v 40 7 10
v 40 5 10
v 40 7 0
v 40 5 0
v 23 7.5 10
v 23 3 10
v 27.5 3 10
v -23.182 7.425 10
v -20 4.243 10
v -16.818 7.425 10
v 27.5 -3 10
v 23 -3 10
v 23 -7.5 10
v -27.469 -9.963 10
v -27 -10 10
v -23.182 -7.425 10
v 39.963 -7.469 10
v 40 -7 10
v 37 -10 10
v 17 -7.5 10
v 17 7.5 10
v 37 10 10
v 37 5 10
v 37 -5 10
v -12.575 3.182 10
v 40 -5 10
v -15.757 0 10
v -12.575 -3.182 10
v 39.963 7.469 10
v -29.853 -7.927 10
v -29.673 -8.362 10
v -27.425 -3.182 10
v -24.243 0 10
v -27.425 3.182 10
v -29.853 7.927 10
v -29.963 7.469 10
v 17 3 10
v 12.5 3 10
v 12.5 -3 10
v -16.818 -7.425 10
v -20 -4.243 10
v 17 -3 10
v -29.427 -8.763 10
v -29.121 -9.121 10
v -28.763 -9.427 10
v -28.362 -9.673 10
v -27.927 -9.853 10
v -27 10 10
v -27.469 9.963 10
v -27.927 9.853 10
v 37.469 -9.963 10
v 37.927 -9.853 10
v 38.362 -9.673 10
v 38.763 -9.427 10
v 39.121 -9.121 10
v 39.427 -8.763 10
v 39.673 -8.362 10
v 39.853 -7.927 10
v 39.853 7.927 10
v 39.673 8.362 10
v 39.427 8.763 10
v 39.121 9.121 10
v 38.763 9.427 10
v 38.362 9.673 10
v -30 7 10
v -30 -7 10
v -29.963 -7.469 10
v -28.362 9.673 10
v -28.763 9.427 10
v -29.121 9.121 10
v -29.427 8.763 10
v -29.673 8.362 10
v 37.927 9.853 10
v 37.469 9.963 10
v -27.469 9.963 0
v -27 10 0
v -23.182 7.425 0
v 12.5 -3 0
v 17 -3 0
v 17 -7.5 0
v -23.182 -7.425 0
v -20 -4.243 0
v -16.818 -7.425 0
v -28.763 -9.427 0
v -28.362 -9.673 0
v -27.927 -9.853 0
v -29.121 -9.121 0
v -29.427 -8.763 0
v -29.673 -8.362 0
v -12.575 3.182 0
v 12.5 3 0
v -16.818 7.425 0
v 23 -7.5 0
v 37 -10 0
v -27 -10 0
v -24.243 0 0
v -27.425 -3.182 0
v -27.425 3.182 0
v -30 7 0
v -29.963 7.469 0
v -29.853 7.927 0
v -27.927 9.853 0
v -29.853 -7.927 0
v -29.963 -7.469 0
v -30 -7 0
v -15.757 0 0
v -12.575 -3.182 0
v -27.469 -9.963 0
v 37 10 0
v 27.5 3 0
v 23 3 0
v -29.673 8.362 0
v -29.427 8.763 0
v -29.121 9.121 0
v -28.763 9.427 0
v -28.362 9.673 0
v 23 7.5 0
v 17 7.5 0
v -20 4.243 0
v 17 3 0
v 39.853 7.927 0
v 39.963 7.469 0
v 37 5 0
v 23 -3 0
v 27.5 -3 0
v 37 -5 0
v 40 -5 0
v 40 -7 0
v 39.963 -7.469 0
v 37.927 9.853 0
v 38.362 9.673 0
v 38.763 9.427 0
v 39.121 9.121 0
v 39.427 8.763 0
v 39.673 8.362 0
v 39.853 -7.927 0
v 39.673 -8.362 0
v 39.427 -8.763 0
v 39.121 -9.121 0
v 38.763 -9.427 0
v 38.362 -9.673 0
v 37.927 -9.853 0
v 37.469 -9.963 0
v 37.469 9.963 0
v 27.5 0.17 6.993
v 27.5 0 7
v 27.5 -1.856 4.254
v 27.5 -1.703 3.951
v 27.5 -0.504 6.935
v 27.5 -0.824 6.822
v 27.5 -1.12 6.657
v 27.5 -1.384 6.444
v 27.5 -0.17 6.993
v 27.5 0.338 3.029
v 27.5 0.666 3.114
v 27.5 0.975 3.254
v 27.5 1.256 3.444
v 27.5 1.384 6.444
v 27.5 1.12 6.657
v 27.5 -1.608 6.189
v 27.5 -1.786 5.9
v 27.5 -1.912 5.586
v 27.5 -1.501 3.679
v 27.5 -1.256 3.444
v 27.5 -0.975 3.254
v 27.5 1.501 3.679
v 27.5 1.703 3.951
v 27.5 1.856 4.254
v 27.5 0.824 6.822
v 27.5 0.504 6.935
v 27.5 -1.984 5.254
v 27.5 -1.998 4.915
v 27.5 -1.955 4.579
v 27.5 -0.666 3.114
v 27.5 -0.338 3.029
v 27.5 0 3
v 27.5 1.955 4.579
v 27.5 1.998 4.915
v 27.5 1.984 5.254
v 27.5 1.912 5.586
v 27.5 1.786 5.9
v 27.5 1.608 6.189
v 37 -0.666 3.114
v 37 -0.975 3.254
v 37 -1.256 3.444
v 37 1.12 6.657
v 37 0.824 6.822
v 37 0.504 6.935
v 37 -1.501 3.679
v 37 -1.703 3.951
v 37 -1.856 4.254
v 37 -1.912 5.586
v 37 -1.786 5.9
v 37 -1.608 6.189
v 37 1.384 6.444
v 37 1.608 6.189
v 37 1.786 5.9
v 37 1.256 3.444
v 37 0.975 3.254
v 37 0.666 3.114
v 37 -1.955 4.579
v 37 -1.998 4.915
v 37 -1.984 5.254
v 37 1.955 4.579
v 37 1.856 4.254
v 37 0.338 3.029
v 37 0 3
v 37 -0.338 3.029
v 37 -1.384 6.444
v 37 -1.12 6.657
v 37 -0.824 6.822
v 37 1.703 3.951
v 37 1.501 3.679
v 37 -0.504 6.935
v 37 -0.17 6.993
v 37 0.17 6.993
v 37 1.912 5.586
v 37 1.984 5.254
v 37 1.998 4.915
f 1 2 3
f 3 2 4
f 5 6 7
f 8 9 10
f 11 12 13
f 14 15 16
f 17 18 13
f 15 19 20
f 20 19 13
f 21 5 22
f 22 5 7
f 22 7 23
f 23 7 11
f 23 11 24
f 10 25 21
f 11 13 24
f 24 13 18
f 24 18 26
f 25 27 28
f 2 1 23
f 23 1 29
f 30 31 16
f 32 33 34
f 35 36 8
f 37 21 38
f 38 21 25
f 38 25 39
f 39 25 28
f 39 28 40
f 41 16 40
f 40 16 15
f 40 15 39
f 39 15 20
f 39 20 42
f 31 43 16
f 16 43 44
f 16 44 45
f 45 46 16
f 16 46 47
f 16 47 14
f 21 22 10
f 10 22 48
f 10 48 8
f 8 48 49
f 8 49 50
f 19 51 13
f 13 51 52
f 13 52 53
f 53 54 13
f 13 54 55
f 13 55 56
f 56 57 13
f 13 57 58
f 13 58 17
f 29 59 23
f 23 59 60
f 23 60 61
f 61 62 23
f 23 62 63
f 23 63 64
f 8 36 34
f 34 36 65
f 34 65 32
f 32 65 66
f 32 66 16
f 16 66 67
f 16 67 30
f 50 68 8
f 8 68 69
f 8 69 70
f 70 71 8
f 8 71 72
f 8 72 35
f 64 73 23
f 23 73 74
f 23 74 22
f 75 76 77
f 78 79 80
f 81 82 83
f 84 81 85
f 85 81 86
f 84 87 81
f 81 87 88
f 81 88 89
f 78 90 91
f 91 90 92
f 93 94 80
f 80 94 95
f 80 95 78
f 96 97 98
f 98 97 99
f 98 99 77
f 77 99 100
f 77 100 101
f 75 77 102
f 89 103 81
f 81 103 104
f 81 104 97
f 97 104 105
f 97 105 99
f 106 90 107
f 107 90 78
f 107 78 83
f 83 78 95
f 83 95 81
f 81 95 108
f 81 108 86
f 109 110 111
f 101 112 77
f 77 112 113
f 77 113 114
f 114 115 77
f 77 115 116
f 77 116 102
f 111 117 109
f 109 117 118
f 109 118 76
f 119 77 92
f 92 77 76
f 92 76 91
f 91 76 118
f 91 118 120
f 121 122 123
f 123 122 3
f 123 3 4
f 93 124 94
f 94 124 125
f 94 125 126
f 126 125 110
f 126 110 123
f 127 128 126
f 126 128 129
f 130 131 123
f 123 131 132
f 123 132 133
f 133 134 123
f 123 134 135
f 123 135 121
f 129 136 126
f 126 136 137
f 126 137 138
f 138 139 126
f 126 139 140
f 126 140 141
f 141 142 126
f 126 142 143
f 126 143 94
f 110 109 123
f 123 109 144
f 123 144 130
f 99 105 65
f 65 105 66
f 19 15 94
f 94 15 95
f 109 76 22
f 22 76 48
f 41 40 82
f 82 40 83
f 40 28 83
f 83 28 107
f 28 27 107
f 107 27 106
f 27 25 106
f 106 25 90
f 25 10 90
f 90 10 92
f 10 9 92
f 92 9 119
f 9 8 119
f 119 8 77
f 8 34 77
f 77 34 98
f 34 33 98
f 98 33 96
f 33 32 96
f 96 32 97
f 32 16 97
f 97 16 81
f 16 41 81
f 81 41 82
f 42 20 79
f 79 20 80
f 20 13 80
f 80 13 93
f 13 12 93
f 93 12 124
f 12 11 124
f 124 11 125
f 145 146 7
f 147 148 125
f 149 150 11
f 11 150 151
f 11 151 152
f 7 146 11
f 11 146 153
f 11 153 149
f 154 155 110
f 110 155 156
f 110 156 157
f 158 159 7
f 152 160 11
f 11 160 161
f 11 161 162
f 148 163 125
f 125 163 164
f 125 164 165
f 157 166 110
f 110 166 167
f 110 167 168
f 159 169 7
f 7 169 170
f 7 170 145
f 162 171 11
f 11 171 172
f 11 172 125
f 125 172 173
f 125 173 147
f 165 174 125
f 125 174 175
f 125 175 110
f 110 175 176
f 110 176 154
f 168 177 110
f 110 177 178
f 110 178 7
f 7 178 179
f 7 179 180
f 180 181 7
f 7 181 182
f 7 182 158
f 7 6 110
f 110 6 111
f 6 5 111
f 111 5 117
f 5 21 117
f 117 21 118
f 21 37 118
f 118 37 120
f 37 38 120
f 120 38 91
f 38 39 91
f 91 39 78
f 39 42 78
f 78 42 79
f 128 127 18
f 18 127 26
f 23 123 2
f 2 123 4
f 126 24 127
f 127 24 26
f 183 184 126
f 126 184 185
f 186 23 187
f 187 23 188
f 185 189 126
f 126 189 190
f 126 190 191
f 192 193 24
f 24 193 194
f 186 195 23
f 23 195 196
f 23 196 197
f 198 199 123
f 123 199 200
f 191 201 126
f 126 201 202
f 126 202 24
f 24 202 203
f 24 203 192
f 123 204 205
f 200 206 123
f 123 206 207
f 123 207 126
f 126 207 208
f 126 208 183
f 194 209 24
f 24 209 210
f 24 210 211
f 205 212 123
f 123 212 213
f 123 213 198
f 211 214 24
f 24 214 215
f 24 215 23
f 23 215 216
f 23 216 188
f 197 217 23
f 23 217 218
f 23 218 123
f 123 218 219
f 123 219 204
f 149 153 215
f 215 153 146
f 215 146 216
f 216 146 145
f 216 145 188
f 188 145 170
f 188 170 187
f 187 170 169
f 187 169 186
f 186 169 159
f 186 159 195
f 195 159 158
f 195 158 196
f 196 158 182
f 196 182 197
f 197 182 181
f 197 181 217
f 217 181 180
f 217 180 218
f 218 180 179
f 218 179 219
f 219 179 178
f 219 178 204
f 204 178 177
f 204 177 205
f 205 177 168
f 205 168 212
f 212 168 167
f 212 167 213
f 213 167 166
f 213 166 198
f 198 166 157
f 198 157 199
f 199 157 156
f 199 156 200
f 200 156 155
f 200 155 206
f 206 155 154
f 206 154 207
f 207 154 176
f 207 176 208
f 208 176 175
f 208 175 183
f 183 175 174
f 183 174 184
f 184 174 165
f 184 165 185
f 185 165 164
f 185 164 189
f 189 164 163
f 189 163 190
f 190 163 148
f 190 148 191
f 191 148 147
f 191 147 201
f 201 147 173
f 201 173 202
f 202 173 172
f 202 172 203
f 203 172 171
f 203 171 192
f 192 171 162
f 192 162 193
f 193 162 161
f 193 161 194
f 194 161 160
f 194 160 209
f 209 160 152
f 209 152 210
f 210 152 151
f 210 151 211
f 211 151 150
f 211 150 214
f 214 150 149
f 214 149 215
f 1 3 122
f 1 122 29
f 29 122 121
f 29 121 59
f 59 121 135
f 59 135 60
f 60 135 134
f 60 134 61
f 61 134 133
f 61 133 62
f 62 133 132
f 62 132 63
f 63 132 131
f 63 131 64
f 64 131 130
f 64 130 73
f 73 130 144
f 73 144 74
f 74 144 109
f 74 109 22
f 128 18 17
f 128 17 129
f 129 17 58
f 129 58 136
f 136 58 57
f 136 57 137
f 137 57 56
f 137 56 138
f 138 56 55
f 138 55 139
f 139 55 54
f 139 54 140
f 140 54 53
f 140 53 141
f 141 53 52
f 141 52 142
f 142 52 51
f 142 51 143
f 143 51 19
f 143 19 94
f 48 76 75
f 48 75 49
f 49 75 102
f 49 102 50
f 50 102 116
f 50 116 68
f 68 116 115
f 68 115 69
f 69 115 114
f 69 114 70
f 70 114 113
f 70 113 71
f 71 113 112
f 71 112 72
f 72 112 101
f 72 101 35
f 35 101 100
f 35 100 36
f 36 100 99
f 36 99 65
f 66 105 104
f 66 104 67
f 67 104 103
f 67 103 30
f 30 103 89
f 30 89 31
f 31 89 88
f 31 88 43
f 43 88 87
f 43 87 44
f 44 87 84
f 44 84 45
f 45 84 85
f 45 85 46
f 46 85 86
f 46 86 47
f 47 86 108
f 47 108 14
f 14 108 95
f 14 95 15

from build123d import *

# Parameters (mm, degrees)
SKETCH1_W           = 60
SKETCH1_H           = 20
BOSS_EXTRUDE5_DEPTH = 10
SKETCH4_W           = 10
SKETCH4_H           = 20
BOSS_EXTRUDE6_DEPTH = 10
SKETCH5_W           = 10
SKETCH5_H           = 10
CUT_EXTRUDE4_DEPTH  = 3
SKETCH6_R           = 2
CUT_EXTRUDE5_DEPTH  = 14
FILLET2_R           = 3


with BuildPart() as part:
    # Sketch1 → Boss-Extrude5 (new body)
    with BuildSketch(Plane.XY):
        Rectangle(SKETCH1_W, SKETCH1_H)
        Polygon((-23.181980124, 7.42462107), (-27.42462133, 3.181980902), (-24.242640893, 3.09e-07), (-27.424621334, -3.181979354), (-23.181981665, -7.424621059), (-20.00000031, -4.242640483), (-16.818019873, -7.424621076), (-12.575378663, -3.181980905), (-15.757358789, 0), (-12.575378649, 3.181979361), (-16.818018342, 7.424621043), (-19.999999246, 4.242640917), align=None, mode=Mode.SUBTRACT)
        Polygon((23, 7.5), (17, 7.5), (17, 3), (12.5, 3), (12.5, -3), (17, -3), (17, -7.5), (23, -7.5), (23, -3), (27.5, -3), (27.5, 3), (23, 3), align=None, mode=Mode.SUBTRACT)
    extrude(amount=BOSS_EXTRUDE5_DEPTH)

    # Sketch4 → Boss-Extrude6 (add)
    with BuildSketch(Plane(origin=(30, 0, 0), x_dir=(0, 0, -1), z_dir=(1, 0, 0))):
        with Locations((-5, 0)):
            Rectangle(SKETCH4_W, SKETCH4_H)
    extrude(amount=BOSS_EXTRUDE6_DEPTH)

    # Sketch5 → Cut-Extrude4 (cut)
    with BuildSketch(Plane(origin=(40, 0, 0), x_dir=(0, 0, -1), z_dir=(1, 0, 0))):
        with Locations((-5, 0)):
            Rectangle(SKETCH5_W, SKETCH5_H)
    extrude(amount=-CUT_EXTRUDE4_DEPTH, mode=Mode.SUBTRACT)

    # Sketch6 → Cut-Extrude5 (cut)
    with BuildSketch(Plane(origin=(37, 0, 0), x_dir=(0, 0, -1), z_dir=(1, 0, 0))):
        with Locations((-5, 0)):
            Circle(SKETCH6_R)
    extrude(amount=-CUT_EXTRUDE5_DEPTH, mode=Mode.SUBTRACT)

    # Fillet2
    fillet2_edges = [part.edges().sort_by_distance(p)[0] for p in [
        (-30, 10, 5),
        (-30, -10, 5),
        (40, 10, 5),
        (40, -10, 5),
    ]]
    fillet(fillet2_edges, radius=FILLET2_R)


solid = part.part
